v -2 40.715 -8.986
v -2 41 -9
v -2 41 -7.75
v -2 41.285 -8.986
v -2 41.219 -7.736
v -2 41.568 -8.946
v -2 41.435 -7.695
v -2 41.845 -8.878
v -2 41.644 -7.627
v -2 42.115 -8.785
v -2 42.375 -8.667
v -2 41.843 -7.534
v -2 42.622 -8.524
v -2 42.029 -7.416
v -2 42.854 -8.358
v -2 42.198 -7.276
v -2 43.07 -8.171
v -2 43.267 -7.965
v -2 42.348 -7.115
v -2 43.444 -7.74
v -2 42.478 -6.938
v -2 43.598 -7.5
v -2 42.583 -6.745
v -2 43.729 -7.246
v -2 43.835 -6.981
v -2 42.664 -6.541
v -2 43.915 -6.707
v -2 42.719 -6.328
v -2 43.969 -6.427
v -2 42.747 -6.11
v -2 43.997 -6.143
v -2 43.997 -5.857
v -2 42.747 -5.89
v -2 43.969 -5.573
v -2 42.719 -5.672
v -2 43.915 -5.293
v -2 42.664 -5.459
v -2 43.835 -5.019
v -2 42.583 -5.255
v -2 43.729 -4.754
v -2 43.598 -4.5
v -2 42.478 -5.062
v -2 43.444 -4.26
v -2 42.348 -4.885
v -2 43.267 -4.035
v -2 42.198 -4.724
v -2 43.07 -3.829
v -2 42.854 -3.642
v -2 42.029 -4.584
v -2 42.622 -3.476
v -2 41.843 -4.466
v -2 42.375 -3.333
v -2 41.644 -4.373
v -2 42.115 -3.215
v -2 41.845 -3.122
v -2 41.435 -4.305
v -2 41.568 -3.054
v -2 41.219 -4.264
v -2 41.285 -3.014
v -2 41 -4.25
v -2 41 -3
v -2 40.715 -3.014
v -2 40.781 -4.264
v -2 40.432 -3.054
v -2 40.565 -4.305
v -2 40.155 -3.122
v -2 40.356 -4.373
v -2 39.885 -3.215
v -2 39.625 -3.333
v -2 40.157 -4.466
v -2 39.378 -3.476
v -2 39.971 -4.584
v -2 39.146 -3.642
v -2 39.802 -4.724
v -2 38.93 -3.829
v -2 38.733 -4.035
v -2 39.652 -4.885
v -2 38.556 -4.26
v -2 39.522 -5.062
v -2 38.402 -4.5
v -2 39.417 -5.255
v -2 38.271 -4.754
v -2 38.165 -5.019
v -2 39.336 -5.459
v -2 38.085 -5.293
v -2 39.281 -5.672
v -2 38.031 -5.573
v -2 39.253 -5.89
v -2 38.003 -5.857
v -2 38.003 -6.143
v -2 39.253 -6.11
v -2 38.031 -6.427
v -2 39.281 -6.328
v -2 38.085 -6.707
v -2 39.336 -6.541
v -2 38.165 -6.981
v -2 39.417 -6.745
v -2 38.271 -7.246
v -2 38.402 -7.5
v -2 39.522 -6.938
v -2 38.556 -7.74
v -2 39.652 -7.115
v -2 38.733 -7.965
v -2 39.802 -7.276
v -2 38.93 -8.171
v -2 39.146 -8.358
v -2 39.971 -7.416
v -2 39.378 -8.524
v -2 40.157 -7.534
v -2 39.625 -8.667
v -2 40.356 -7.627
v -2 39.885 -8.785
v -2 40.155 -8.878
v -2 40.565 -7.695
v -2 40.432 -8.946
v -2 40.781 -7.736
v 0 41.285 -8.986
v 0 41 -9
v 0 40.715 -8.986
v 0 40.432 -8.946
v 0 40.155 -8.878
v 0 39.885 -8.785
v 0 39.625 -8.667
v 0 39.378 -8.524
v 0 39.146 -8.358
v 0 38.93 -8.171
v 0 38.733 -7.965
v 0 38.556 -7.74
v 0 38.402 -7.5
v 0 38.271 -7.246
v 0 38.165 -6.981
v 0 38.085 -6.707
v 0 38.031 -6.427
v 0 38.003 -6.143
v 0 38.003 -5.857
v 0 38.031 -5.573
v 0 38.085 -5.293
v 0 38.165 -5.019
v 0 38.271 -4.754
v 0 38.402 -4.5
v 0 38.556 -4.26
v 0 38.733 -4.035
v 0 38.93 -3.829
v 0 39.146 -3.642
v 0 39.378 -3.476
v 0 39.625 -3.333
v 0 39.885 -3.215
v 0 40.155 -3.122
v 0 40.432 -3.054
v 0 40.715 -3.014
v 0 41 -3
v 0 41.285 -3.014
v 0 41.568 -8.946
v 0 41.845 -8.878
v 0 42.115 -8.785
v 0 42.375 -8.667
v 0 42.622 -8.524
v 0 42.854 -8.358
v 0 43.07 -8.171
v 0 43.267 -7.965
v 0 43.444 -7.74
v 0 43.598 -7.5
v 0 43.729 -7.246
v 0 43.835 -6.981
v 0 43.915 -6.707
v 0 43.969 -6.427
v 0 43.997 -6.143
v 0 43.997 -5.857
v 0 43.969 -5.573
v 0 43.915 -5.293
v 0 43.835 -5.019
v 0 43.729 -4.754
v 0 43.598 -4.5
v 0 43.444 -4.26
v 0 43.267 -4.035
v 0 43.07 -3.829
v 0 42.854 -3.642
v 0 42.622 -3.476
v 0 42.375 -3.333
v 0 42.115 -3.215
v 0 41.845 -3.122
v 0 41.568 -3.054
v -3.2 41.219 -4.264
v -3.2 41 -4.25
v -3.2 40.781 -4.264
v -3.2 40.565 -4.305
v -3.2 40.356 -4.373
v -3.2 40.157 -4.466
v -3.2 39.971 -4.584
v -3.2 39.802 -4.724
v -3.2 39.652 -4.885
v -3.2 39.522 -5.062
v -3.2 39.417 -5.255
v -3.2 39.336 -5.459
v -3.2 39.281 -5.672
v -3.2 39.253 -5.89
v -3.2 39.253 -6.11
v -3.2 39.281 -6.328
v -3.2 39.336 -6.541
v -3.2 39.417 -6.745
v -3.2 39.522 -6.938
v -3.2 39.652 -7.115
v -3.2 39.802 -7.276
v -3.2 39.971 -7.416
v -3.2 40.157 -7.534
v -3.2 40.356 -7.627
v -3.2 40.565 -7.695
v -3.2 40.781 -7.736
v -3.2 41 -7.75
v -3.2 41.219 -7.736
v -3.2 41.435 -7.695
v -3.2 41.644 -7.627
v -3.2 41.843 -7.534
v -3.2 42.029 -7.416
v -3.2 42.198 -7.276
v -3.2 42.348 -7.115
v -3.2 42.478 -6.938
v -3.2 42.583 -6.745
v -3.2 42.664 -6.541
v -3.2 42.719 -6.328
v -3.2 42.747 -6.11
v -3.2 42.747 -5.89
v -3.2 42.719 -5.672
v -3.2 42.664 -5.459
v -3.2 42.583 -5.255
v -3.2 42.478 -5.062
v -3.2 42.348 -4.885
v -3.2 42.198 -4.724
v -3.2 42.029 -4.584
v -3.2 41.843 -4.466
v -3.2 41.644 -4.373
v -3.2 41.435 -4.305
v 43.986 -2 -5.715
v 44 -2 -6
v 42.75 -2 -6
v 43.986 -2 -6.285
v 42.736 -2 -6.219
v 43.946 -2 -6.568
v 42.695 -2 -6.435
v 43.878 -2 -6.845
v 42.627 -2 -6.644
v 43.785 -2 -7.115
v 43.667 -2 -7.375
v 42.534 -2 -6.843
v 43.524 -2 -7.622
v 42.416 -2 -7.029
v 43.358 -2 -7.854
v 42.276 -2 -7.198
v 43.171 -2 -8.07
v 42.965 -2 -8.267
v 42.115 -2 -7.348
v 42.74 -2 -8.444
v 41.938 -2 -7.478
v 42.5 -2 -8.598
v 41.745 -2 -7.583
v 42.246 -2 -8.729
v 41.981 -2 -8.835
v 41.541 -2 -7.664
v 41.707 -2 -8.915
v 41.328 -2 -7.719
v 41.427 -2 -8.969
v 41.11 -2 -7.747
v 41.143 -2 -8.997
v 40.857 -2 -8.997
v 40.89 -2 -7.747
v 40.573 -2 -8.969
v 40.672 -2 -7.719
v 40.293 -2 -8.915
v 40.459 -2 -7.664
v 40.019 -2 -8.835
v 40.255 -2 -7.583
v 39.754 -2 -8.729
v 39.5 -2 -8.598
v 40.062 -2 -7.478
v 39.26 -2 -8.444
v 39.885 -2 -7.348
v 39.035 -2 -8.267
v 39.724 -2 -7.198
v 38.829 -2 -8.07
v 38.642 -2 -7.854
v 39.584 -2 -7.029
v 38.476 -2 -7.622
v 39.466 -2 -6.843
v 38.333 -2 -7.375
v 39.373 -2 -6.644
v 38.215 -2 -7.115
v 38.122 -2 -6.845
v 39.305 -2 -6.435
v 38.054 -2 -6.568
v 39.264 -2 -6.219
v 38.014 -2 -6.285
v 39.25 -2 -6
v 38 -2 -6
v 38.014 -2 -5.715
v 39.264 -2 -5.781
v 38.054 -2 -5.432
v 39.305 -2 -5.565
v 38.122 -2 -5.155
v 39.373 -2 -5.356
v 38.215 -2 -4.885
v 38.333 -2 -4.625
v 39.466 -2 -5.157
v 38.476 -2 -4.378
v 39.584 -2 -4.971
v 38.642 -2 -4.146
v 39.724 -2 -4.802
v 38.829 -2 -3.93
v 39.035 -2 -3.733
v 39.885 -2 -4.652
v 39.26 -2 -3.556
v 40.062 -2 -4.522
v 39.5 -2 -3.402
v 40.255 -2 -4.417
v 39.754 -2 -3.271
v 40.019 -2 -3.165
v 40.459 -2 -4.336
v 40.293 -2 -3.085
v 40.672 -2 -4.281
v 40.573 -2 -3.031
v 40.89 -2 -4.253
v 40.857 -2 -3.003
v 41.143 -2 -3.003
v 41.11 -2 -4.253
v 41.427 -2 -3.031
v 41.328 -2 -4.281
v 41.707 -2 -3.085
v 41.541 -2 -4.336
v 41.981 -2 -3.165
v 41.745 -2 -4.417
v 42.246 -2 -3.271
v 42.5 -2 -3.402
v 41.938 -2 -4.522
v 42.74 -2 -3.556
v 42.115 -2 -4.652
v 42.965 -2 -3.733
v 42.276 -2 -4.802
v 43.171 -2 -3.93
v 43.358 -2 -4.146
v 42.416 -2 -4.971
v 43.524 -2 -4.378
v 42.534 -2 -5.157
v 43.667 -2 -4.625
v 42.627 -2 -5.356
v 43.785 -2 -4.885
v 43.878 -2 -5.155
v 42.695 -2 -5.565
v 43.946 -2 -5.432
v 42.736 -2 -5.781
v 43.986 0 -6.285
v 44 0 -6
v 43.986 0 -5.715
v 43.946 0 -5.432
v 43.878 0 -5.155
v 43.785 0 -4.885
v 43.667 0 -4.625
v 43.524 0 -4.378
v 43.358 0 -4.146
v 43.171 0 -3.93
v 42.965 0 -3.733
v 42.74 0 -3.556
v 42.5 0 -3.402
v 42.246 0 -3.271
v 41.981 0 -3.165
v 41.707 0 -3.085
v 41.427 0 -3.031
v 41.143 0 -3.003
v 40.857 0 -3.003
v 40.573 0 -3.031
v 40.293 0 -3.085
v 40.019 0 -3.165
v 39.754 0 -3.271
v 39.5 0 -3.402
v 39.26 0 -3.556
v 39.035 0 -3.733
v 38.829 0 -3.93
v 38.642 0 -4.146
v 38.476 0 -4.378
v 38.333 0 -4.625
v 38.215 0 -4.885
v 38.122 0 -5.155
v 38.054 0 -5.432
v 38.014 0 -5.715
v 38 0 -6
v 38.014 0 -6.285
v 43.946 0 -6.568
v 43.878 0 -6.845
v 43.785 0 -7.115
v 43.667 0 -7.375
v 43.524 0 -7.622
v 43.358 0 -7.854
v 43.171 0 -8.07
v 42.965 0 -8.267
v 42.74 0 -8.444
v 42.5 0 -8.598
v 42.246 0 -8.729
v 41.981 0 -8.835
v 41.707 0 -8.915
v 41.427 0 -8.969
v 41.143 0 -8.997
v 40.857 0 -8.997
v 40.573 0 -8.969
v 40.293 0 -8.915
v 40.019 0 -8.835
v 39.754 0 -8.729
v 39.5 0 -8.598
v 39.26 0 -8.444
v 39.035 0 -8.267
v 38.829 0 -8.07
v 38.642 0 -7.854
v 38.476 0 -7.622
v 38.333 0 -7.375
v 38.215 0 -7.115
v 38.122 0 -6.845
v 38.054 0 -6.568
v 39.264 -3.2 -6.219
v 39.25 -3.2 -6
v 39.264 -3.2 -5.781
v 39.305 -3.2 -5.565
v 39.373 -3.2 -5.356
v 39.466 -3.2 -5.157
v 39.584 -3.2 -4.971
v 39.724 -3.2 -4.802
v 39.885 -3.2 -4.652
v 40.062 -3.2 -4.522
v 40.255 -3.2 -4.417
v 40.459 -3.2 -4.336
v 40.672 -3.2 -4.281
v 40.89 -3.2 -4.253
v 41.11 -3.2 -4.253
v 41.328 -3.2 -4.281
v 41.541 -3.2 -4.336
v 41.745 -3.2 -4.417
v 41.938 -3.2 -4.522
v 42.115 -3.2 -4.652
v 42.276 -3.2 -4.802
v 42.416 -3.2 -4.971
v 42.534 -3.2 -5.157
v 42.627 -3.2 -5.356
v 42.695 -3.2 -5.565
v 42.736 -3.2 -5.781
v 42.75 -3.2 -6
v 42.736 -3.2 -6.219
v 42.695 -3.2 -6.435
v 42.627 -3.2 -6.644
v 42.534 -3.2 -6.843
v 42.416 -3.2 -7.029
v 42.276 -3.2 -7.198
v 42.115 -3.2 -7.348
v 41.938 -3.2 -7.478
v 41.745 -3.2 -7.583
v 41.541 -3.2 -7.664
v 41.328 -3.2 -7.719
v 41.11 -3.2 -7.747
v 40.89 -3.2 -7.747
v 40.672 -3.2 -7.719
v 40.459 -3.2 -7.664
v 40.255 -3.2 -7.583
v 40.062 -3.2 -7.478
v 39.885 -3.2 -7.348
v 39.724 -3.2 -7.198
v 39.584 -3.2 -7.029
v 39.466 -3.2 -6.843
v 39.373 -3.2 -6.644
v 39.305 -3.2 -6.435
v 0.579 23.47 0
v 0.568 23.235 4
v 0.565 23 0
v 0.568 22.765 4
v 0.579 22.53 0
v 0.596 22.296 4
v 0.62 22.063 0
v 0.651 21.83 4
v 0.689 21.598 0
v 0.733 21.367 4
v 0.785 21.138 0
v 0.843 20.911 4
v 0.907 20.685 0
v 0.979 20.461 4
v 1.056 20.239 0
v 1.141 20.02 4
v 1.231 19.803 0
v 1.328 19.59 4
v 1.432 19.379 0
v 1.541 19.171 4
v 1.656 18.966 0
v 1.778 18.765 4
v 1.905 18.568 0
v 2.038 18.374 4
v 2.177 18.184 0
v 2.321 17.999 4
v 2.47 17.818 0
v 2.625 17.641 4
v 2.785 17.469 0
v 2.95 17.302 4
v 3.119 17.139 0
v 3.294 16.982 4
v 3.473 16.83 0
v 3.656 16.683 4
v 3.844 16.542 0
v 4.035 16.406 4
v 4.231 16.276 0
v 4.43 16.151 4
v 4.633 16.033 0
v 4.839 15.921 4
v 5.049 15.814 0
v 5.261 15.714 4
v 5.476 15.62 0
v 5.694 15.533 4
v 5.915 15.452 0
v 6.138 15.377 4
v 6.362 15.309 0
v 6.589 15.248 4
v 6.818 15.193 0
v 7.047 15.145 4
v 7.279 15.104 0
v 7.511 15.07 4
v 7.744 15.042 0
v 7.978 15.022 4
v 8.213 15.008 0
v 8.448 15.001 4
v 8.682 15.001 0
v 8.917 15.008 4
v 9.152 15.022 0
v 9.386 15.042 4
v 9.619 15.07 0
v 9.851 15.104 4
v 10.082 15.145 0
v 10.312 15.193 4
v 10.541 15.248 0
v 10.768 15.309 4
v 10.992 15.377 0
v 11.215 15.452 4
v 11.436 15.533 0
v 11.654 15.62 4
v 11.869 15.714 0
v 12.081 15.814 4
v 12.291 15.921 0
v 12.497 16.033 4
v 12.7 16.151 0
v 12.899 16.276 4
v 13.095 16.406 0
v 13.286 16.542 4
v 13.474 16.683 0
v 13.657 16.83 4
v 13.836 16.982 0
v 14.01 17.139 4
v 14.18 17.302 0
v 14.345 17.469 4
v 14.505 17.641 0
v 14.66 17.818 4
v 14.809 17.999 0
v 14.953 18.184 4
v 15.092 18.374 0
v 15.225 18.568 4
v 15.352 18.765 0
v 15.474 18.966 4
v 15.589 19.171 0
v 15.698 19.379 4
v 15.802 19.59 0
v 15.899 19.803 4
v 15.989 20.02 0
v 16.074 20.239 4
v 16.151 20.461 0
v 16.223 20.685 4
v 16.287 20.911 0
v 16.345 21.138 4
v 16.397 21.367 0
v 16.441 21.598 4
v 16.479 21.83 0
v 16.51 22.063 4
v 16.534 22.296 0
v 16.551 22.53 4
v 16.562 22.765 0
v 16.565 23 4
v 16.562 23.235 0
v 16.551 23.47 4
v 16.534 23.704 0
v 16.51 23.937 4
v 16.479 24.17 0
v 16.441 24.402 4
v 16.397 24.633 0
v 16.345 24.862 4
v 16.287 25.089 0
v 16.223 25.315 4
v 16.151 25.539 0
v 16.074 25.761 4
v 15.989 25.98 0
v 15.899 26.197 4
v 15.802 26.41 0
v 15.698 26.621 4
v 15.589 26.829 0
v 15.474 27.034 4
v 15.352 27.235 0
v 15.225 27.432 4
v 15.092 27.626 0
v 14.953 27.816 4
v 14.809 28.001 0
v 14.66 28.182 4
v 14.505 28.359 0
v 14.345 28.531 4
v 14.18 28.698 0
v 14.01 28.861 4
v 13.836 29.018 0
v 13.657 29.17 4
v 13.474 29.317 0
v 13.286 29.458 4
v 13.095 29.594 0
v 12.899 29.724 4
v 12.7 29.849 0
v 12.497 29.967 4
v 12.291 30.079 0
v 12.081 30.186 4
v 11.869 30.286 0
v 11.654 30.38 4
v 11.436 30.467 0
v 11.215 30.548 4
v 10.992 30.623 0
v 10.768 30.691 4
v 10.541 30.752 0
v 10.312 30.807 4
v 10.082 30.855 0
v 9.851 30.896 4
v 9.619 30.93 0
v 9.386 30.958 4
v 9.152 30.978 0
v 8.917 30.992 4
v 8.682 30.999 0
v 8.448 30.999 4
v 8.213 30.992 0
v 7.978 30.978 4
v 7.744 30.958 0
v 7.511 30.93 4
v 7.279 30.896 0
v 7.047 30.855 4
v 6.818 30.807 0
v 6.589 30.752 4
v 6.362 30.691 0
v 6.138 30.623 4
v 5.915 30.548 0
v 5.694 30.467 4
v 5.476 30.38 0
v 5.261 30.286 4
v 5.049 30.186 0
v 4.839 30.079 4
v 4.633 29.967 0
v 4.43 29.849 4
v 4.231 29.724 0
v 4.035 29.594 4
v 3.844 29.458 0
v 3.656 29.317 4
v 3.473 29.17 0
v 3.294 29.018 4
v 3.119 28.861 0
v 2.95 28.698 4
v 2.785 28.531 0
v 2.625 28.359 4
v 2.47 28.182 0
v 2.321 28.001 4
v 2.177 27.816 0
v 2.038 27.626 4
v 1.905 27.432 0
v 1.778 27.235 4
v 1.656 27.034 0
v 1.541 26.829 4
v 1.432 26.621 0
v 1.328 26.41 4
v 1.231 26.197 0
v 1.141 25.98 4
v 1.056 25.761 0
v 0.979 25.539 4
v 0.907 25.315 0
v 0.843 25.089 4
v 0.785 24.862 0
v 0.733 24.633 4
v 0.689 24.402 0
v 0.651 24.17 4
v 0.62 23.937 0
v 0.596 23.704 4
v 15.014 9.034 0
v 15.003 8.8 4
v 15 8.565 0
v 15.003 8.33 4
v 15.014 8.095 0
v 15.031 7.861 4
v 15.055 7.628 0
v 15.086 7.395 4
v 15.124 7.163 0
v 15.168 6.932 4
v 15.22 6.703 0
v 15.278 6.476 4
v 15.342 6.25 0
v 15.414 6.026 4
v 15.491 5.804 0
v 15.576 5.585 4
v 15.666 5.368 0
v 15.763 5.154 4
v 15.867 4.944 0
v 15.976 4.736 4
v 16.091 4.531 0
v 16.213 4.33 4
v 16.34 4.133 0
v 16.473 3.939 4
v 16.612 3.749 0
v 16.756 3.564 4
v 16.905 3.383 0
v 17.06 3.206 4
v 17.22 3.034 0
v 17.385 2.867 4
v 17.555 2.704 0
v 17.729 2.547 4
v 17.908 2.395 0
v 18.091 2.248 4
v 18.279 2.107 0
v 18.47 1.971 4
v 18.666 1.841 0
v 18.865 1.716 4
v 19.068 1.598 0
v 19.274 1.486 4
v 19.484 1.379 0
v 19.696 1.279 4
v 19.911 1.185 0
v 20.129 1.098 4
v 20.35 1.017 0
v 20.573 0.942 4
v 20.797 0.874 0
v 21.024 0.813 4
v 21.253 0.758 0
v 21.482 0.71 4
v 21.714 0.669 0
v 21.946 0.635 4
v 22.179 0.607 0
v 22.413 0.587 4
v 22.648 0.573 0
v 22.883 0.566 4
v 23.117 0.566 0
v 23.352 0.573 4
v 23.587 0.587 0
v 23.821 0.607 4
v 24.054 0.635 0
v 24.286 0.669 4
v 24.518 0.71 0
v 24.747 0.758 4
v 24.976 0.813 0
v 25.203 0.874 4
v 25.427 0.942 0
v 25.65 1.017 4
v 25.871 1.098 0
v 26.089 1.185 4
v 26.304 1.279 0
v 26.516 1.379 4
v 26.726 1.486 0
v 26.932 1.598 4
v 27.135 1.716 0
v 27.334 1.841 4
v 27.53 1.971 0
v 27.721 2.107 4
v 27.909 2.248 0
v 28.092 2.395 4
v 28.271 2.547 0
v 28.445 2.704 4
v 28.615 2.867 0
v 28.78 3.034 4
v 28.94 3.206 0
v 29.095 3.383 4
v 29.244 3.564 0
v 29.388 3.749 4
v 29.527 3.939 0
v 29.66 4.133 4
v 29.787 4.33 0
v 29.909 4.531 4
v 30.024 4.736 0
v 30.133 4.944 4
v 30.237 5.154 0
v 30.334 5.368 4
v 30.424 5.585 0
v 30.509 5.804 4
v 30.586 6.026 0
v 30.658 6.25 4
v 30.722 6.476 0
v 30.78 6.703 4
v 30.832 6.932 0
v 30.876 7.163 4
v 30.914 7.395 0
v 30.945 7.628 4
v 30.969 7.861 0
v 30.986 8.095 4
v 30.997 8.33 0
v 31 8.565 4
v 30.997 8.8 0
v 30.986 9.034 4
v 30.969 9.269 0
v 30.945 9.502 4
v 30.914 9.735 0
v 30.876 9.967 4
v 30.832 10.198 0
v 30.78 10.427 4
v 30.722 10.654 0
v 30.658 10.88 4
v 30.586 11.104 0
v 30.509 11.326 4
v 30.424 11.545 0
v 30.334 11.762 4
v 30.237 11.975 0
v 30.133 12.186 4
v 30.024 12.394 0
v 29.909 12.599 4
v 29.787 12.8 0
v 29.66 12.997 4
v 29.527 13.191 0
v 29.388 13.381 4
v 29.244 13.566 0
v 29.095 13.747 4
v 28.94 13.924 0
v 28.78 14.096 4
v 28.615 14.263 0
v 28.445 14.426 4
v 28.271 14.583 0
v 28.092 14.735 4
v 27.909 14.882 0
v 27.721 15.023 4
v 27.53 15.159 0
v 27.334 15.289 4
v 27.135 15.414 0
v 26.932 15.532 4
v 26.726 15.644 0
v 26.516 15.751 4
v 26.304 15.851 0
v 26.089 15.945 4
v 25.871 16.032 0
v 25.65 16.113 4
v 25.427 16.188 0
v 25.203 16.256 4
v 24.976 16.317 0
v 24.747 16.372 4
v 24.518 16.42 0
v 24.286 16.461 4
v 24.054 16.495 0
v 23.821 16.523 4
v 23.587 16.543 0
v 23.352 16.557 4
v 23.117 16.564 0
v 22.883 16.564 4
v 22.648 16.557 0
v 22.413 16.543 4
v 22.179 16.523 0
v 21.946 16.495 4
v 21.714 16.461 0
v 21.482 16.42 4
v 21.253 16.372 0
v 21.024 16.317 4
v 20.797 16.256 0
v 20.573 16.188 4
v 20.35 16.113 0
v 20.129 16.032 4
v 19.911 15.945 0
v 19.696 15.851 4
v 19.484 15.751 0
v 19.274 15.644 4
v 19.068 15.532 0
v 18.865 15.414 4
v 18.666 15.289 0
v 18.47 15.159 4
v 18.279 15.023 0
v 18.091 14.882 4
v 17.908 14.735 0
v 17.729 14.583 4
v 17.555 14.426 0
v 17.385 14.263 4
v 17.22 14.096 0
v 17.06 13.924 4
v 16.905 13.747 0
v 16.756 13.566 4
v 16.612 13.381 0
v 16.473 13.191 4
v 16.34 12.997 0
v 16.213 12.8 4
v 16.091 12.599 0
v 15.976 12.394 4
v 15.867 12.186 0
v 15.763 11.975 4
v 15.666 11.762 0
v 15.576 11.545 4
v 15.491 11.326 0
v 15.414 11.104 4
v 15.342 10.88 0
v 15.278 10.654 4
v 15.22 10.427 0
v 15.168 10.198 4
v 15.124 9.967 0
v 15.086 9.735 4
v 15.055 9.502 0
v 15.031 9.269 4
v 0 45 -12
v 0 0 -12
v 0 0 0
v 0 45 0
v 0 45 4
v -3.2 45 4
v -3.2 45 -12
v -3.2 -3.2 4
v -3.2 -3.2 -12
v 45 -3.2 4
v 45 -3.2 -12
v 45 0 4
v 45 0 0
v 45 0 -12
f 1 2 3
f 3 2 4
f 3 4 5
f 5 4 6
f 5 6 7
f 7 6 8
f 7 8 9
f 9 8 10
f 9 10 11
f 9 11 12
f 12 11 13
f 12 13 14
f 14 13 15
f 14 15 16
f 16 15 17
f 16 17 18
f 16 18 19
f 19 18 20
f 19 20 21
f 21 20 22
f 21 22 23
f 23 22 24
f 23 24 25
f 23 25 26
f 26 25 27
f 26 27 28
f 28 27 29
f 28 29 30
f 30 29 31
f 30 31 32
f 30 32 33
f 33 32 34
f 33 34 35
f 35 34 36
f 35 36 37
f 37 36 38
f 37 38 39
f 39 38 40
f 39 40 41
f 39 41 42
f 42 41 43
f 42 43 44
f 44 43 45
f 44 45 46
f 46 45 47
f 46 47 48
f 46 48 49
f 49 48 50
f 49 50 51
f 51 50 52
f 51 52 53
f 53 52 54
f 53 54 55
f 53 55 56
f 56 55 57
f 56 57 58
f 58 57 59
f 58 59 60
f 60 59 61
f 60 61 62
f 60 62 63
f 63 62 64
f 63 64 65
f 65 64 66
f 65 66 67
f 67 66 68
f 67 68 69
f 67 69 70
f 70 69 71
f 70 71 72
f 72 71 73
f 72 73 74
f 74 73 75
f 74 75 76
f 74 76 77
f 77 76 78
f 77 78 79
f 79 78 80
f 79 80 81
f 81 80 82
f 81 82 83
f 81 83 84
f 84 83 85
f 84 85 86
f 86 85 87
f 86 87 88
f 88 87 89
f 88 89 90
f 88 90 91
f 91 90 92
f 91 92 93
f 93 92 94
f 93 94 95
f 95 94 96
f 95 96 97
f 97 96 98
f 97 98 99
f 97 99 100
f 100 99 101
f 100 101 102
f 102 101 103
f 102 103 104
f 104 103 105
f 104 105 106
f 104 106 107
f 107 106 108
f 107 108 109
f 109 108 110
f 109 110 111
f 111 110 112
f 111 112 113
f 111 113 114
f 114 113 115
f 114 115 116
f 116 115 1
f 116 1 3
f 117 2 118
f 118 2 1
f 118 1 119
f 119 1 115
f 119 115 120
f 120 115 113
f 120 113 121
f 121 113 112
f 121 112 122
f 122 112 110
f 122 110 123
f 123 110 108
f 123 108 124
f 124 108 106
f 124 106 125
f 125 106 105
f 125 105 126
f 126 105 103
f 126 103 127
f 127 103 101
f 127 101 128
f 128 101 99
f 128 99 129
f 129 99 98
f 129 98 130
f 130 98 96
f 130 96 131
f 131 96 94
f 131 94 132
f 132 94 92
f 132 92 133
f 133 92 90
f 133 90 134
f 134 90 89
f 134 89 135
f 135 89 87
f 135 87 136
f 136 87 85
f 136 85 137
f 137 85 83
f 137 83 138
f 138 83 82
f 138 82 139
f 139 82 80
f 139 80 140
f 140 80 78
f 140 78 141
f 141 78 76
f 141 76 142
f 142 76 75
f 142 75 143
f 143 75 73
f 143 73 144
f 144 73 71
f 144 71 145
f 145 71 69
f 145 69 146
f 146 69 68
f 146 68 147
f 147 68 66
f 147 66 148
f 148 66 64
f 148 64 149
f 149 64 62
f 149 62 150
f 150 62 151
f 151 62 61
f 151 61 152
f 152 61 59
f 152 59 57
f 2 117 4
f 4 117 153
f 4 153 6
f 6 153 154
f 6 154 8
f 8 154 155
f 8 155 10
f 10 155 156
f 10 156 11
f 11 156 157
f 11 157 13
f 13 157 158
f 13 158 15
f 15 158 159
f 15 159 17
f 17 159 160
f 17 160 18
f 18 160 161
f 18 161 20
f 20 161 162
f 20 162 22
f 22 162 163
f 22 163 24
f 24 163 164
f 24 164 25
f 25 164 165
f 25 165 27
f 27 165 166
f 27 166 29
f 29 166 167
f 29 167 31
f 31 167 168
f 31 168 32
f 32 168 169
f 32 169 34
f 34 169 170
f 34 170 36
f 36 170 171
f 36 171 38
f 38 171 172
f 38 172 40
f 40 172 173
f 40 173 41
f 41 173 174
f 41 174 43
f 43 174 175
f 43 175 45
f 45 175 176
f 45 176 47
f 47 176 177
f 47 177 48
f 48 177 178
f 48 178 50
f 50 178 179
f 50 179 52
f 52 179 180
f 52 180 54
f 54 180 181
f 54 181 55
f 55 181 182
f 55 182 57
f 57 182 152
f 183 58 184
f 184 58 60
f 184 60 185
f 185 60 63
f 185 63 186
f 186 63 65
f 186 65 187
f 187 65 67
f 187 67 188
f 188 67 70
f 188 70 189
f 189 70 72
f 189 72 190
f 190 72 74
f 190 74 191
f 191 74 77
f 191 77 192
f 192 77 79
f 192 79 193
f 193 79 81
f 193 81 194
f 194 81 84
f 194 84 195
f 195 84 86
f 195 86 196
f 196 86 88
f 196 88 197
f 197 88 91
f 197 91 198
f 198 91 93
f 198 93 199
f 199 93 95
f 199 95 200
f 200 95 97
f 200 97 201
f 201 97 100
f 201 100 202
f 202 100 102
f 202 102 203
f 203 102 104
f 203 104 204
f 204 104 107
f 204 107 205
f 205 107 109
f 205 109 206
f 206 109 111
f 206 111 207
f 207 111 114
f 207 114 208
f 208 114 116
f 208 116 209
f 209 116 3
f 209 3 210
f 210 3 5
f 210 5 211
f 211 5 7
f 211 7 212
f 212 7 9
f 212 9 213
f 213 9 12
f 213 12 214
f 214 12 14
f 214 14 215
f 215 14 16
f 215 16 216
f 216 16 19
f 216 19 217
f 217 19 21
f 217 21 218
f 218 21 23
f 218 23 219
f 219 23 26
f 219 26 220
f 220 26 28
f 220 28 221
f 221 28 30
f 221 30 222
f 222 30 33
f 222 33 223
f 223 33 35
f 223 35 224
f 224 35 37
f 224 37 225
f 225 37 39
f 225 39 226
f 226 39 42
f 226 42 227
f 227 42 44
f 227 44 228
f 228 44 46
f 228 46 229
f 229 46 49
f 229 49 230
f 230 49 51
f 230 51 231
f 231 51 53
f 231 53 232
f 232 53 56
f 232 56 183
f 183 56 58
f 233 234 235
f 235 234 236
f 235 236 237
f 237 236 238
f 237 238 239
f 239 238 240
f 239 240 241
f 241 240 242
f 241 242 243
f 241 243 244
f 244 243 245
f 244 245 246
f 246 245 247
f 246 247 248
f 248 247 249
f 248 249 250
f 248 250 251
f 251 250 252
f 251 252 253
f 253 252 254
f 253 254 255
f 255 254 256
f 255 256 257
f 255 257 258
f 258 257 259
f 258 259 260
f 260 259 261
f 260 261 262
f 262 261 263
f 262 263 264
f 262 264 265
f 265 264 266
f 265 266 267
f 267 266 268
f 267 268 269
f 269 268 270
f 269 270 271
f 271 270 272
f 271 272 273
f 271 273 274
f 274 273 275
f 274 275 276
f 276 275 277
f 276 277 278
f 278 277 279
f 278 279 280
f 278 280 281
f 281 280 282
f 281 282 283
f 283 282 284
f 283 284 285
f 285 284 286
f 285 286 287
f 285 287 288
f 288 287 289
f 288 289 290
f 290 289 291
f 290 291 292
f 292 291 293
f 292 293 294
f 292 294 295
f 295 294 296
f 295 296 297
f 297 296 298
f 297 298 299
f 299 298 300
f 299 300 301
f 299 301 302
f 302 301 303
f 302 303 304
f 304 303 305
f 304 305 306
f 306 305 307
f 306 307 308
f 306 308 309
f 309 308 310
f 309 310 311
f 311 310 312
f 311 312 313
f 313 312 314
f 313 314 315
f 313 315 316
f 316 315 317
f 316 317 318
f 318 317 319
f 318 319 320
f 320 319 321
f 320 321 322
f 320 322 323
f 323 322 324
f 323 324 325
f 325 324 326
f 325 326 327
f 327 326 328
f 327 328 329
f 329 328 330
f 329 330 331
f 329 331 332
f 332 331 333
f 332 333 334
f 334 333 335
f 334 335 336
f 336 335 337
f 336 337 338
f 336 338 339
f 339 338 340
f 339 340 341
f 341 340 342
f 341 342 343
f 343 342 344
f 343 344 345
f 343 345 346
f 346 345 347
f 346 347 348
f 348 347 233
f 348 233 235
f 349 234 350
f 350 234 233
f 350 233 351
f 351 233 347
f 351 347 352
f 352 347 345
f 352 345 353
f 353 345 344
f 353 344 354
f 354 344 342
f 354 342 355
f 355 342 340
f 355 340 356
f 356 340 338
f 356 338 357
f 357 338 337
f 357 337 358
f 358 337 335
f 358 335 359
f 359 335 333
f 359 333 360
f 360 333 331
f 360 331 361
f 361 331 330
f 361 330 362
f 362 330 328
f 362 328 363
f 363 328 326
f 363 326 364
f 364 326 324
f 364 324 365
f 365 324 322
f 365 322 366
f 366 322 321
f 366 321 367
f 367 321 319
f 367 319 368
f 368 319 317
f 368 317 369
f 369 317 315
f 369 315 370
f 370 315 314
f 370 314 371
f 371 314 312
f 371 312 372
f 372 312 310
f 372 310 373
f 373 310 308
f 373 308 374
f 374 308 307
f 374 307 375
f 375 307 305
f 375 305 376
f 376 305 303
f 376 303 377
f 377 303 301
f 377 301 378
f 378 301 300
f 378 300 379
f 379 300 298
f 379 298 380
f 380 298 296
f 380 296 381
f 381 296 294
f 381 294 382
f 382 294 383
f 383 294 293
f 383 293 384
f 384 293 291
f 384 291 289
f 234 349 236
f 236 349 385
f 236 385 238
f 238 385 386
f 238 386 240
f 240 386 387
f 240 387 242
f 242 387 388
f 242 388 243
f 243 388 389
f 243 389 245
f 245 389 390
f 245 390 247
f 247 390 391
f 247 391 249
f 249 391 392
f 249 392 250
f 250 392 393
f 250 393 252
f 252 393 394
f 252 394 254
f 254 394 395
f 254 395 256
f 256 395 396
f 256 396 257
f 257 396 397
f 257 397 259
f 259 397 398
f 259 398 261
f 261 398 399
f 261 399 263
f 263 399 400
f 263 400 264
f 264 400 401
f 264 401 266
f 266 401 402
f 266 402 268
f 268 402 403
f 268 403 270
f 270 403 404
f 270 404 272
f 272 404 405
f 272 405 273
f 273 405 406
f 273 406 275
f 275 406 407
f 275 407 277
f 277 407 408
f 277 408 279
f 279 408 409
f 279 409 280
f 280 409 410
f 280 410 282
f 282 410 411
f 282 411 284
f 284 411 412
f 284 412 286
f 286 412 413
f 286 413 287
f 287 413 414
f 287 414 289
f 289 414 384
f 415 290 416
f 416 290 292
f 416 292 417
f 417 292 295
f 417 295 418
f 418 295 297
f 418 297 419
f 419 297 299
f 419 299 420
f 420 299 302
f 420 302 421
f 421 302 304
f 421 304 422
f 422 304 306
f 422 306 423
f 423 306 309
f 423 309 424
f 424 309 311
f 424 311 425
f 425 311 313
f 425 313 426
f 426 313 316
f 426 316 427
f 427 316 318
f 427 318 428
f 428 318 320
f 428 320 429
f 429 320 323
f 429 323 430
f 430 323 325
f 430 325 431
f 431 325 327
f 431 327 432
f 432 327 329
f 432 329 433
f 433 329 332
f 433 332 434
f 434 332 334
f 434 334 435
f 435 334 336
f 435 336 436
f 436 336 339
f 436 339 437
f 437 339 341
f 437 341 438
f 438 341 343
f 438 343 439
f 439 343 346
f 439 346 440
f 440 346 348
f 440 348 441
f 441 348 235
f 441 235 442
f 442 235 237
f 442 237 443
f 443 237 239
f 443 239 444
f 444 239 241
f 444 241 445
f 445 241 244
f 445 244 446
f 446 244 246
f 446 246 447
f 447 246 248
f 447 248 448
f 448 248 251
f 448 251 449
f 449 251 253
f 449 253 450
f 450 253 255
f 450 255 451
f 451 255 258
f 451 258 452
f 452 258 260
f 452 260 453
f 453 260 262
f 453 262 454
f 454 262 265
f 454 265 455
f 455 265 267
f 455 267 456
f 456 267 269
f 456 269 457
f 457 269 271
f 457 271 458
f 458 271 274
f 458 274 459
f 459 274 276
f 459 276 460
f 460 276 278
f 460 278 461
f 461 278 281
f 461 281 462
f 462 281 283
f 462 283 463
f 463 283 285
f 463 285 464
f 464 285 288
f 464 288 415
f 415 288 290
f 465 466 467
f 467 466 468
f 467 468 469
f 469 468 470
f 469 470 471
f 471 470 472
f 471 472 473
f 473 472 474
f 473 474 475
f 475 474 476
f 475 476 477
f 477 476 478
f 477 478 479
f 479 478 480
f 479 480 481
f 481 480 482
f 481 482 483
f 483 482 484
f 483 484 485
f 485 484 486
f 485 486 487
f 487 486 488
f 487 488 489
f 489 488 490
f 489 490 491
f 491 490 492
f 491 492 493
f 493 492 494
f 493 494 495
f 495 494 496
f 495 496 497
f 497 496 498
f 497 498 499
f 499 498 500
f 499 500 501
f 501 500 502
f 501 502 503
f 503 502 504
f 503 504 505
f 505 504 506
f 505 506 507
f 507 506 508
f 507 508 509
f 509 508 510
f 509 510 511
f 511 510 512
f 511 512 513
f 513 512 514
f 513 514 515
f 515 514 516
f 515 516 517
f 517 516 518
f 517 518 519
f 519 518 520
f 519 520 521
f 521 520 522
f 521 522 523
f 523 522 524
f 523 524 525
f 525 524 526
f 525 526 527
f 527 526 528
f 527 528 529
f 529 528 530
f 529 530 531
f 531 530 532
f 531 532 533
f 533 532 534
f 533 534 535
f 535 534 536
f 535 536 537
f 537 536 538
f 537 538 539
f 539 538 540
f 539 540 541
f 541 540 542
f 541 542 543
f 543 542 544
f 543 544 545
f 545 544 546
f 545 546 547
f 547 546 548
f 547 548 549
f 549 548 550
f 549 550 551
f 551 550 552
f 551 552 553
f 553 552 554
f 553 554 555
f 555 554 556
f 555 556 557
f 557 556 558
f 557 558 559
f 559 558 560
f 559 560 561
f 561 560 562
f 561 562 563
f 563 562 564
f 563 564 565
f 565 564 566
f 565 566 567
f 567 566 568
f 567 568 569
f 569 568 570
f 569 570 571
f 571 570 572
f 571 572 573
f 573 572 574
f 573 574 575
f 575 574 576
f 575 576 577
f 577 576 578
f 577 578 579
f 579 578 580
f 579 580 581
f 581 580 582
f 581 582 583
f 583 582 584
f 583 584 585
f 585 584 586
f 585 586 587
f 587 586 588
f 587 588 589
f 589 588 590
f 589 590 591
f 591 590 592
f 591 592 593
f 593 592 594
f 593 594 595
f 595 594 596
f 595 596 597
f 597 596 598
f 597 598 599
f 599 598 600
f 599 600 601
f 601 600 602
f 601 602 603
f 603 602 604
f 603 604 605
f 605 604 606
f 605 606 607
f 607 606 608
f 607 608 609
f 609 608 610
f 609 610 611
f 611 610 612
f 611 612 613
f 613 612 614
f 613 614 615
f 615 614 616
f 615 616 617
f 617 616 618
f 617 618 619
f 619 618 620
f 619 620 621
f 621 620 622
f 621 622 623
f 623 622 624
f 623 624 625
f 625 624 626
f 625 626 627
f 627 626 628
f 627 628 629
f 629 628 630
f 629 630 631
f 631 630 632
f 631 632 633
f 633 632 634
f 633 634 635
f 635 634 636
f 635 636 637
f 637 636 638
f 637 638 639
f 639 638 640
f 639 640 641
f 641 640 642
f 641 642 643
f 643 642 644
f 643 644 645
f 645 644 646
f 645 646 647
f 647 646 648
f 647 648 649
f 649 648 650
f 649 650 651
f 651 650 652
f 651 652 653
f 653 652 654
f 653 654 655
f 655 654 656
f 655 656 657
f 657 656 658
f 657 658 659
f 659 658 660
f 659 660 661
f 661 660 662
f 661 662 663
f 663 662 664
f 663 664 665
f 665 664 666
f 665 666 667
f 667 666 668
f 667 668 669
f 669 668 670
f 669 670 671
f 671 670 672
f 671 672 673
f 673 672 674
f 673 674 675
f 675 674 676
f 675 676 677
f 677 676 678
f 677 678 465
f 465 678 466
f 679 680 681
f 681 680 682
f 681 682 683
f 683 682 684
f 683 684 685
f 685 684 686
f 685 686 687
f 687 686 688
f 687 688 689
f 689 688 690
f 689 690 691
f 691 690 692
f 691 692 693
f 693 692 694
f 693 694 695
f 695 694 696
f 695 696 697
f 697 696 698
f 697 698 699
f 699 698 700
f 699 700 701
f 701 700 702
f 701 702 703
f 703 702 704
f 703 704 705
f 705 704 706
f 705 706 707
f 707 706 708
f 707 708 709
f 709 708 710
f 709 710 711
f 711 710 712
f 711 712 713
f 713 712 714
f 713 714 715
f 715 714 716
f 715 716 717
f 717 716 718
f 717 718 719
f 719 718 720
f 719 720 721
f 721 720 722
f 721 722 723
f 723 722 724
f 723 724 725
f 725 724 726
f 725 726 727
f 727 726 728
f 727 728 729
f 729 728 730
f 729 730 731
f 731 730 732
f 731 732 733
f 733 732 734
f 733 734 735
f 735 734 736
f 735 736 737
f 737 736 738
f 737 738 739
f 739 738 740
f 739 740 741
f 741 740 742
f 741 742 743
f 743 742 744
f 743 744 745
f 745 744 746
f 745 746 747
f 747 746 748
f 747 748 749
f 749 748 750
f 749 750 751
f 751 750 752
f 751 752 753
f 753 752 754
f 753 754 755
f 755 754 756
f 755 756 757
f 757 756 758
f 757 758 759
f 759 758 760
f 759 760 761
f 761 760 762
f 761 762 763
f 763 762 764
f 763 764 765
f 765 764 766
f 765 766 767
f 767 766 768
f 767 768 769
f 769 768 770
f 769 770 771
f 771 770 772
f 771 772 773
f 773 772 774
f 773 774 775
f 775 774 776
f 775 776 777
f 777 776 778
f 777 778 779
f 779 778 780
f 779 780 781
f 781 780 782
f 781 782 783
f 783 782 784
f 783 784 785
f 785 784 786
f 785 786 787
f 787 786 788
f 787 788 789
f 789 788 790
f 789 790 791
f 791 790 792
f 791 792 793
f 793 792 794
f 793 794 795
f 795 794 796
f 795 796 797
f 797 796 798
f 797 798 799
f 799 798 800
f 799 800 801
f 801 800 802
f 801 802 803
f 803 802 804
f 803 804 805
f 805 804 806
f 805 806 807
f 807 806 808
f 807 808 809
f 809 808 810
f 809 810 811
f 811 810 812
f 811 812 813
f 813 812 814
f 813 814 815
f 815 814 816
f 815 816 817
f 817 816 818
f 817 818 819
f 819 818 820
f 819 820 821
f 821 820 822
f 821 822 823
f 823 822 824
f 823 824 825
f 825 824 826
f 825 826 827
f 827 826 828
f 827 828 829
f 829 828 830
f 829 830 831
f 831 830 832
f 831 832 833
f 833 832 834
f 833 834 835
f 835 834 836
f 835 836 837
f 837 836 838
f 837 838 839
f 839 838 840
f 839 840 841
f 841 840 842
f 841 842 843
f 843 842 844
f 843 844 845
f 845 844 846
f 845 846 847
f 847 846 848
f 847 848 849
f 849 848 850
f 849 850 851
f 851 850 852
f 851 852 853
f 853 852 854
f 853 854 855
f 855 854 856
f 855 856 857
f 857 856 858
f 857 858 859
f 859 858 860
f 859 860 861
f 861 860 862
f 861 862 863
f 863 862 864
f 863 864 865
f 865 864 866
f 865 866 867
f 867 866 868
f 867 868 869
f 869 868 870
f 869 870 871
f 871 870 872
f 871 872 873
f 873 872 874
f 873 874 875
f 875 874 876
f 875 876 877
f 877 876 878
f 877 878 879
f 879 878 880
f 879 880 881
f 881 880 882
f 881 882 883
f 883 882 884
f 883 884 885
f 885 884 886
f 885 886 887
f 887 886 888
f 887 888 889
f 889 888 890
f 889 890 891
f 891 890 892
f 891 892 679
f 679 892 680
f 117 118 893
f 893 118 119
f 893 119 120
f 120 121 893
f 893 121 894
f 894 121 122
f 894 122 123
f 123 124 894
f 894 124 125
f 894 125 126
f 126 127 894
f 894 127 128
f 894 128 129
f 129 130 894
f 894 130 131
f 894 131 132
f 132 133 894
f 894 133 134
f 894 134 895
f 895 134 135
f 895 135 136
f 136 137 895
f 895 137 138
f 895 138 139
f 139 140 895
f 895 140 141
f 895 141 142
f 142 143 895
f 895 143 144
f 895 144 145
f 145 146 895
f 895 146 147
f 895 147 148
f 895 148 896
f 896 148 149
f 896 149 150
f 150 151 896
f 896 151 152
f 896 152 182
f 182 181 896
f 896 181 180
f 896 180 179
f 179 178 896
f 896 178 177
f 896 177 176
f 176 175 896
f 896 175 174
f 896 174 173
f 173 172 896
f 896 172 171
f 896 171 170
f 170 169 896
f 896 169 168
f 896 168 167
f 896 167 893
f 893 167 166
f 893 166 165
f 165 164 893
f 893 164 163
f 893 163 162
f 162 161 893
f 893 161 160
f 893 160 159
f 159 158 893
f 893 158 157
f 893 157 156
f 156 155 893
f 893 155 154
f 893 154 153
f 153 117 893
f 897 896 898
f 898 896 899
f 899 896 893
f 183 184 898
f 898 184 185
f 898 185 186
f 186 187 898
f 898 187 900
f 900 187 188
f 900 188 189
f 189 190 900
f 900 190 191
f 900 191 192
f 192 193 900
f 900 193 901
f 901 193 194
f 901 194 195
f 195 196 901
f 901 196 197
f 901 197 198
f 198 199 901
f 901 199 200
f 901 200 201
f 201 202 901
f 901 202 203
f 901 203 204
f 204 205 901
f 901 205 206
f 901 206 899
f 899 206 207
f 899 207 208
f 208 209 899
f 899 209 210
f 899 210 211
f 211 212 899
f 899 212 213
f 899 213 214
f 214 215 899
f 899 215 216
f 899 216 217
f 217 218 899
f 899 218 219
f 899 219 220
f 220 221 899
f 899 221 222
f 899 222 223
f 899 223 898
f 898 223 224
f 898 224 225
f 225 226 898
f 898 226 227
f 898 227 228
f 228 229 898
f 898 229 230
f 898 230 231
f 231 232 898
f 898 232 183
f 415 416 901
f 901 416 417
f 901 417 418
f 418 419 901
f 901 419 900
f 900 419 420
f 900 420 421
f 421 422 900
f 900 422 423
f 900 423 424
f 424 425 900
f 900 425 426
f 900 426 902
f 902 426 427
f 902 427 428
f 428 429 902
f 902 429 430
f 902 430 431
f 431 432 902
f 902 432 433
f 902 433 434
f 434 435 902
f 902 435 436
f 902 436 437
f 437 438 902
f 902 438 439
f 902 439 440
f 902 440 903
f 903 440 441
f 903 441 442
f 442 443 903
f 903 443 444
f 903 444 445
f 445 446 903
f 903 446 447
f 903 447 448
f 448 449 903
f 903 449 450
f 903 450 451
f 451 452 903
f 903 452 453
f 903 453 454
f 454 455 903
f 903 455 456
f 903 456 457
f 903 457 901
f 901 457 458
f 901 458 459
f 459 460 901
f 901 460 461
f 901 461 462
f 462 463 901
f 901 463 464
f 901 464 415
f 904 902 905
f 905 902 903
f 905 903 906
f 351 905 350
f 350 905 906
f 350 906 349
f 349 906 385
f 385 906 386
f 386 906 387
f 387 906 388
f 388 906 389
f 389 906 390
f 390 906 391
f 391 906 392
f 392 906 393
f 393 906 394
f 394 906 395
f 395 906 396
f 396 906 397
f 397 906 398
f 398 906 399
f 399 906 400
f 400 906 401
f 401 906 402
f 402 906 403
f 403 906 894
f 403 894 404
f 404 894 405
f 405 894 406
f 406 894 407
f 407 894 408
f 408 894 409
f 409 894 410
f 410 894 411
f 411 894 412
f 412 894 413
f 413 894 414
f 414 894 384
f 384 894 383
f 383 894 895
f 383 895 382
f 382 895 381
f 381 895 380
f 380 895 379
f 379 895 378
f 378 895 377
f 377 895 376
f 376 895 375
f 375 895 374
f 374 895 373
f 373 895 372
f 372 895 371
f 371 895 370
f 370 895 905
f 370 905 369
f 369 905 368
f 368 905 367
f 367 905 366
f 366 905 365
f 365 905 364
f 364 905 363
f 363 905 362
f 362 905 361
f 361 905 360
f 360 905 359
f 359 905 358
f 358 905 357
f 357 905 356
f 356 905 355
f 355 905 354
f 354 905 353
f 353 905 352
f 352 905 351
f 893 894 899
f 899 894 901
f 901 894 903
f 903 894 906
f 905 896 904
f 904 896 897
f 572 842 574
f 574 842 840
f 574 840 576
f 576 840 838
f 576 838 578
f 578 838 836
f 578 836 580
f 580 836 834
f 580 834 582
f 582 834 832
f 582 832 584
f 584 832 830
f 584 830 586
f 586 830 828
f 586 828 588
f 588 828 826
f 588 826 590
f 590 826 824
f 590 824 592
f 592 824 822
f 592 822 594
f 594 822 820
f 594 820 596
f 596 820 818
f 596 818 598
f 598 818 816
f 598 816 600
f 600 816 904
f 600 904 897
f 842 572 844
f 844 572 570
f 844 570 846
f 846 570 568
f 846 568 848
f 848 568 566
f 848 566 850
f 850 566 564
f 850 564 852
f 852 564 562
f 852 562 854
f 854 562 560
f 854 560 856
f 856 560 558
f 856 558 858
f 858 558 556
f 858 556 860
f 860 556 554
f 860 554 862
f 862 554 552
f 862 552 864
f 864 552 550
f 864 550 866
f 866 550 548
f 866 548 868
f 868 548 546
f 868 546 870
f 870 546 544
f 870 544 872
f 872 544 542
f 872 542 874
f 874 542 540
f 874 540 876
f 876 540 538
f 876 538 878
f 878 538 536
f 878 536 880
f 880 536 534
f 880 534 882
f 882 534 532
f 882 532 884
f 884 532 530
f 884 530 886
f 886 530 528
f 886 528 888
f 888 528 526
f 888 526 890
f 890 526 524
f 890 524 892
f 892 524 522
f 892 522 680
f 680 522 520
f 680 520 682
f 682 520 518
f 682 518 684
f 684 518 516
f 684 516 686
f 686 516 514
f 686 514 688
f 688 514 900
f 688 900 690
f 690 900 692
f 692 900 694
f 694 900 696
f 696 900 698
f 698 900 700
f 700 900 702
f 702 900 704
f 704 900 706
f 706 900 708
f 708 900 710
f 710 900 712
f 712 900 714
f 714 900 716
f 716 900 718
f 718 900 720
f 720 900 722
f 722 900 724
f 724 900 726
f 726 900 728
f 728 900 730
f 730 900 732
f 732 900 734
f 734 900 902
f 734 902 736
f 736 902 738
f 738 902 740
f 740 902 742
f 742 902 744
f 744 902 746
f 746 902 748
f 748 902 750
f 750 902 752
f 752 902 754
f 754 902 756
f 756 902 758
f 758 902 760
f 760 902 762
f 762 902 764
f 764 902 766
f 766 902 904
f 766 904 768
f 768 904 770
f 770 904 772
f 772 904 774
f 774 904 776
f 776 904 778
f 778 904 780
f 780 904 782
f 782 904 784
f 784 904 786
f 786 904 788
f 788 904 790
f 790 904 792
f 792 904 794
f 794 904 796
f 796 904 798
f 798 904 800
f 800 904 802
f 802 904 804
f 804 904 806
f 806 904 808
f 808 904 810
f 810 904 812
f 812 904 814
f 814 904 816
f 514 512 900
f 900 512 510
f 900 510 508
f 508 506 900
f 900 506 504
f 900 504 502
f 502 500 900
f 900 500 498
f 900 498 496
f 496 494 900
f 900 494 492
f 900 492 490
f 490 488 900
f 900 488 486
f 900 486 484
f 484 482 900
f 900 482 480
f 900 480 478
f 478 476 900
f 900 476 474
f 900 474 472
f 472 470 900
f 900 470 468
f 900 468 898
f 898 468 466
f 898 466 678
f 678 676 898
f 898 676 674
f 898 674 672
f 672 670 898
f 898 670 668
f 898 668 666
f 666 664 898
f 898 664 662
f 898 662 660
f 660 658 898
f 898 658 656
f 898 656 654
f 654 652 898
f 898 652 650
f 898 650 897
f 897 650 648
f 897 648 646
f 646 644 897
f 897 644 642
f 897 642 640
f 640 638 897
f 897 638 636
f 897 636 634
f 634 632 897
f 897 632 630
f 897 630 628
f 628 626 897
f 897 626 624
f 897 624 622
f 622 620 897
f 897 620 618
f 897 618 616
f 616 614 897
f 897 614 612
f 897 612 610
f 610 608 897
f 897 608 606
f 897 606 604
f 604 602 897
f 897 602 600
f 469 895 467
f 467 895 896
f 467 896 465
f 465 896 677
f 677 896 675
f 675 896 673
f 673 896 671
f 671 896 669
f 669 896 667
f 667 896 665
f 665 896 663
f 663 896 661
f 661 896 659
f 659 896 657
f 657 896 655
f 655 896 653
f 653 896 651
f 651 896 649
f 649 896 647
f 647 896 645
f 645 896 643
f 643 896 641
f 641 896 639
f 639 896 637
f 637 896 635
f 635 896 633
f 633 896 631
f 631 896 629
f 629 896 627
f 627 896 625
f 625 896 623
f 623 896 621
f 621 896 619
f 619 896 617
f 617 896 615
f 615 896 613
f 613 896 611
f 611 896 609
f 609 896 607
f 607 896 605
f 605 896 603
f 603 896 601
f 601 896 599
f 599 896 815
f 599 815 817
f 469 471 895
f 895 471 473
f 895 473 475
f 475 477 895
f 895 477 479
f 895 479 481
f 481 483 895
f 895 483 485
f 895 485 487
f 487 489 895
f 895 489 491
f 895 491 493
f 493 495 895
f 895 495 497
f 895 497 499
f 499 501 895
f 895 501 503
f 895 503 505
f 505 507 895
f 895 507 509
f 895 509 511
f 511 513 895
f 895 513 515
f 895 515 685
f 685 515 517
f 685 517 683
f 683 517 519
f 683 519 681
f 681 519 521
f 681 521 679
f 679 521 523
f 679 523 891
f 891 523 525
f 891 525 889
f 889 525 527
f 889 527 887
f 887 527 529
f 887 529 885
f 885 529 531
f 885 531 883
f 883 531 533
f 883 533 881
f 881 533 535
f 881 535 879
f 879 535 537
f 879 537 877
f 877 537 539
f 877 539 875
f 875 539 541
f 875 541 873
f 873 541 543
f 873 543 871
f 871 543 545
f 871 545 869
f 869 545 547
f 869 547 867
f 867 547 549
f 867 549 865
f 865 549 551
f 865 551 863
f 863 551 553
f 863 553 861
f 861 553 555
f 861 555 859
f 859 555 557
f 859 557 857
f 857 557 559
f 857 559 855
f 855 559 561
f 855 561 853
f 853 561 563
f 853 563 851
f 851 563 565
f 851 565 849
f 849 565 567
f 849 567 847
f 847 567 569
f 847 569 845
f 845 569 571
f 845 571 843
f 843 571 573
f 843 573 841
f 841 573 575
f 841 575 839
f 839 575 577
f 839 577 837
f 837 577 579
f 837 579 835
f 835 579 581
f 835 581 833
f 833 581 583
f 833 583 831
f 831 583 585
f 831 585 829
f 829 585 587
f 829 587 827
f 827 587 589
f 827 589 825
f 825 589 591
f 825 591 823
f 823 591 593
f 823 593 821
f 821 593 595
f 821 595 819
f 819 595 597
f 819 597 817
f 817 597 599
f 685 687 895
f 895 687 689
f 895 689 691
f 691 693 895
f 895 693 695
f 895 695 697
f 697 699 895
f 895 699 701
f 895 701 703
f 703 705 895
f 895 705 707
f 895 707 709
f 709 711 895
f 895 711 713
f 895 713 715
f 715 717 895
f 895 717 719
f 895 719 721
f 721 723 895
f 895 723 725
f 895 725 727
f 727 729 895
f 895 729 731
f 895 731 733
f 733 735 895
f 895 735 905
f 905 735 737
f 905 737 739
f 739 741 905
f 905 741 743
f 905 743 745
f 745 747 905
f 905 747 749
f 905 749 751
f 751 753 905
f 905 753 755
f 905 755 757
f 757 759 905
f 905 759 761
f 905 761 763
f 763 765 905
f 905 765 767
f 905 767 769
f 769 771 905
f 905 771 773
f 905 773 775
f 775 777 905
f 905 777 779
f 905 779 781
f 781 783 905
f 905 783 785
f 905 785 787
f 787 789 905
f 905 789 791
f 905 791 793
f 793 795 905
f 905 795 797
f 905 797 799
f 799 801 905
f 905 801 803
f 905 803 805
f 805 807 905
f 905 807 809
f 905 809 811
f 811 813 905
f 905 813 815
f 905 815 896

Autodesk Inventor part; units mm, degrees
ref_plane "YZ Plane" through (0, 0, 0) normal (1, 0, 0) x (0, 1, 0)
ref_plane "XZ Plane" through (0, 0, 0) normal (0, 1, 0) x (-1, 0, 0)
ref_plane "XY Plane" through (0, 0, 0) normal (0, 0, 1) x (1, 0, 0)
sketch "Skizze1" plane through (0, 0, 0) normal (0, 0, 1) x (1, 0, 0)
  line L0 (0, 0) -> (45, 0)
  line L1 (45, 0) -> (0, 45)
  line L2 (0, 45) -> (0, 0)
  dimension "d0" = 45
  dimension "d1" = 45
extrude "Extrusion1" add sketch "Skizze1" along normal blind 4
sketch "Skizze4" plane through (0, 0, 4) normal (0, 0, 1) x (1, 0, 0)
  line L0 (45, 0) -> (0, 45) projected
  line L1 (45, 0) -> (45, -3.2)
  line L2 (45, -3.2) -> (-3.2, -3.2)
  line L3 (-3.2, -3.2) -> (-3.2, 45)
  line L4 (-3.2, 45) -> (0, 45)
  line L5 (0, 0) -> (45, 0) projected
  line L6 (0, 45) -> (0, 0) projected
  dimension "d20" = 3.2
  dimension "d21" = 3.2
extrude "Extrusion3" add sketch "Skizze4" against normal blind 16 contours L1 L2 L3 L4 L6 L5
sketch "Skizze2" plane through (0, 0, 4) normal (0, 0, 1) x (1, 0, 0)
  line L0 (45, 0) -> (0, 45) projected
  point P0 (0, 0)
  point P1 (8.565, 23)
  point P2 (23, 8.565)
  dimension "d11" = 9.5
  dimension "d12" = 9.5
  dimension "d14" = 22
  dimension "d15" = 22
hole "Bohrung1" at (8.565, 23, 4) at (23, 8.565, 4) direction (0, 0, -1) diameter 16 end through all
sketch "Skizze5" plane through (0, 0, 0) normal (0, 1, 0) x (1, 0, 0)
  line L0 (45, 0) -> (45, 12) projected
  line L1 (45, 0) -> (0, 0) projected
  point P0 (41, 6)
  dimension "d31" = 4
  dimension "d32" = 6
hole "Bohrung2" at (41, 0, -6) direction (0, -1, 0) diameter 3.5 end through all counterbore diameter 6 counterbore depth 2
sketch "Skizze6" plane through (0, 0, 0) normal (1, 0, 0) x (0, 0, -1)
  line L0 (0, 0) -> (0, 45) projected
  line L1 (0, 45) -> (12, 45) projected
  point P0 (6, 41)
  dimension "d40" = 6
  dimension "d41" = 4
hole "Bohrung3" at (0, 41, -6) direction (-1, 0, 0) diameter 3.5 end through all counterbore diameter 6 counterbore depth 2
equation "\"d0\" = d1"
equation "\"d21\" = d20"
equation "\"d12\" = d11"
equation "\"d15\" = d14"
properties part number "Buttons_Mount_v1"
